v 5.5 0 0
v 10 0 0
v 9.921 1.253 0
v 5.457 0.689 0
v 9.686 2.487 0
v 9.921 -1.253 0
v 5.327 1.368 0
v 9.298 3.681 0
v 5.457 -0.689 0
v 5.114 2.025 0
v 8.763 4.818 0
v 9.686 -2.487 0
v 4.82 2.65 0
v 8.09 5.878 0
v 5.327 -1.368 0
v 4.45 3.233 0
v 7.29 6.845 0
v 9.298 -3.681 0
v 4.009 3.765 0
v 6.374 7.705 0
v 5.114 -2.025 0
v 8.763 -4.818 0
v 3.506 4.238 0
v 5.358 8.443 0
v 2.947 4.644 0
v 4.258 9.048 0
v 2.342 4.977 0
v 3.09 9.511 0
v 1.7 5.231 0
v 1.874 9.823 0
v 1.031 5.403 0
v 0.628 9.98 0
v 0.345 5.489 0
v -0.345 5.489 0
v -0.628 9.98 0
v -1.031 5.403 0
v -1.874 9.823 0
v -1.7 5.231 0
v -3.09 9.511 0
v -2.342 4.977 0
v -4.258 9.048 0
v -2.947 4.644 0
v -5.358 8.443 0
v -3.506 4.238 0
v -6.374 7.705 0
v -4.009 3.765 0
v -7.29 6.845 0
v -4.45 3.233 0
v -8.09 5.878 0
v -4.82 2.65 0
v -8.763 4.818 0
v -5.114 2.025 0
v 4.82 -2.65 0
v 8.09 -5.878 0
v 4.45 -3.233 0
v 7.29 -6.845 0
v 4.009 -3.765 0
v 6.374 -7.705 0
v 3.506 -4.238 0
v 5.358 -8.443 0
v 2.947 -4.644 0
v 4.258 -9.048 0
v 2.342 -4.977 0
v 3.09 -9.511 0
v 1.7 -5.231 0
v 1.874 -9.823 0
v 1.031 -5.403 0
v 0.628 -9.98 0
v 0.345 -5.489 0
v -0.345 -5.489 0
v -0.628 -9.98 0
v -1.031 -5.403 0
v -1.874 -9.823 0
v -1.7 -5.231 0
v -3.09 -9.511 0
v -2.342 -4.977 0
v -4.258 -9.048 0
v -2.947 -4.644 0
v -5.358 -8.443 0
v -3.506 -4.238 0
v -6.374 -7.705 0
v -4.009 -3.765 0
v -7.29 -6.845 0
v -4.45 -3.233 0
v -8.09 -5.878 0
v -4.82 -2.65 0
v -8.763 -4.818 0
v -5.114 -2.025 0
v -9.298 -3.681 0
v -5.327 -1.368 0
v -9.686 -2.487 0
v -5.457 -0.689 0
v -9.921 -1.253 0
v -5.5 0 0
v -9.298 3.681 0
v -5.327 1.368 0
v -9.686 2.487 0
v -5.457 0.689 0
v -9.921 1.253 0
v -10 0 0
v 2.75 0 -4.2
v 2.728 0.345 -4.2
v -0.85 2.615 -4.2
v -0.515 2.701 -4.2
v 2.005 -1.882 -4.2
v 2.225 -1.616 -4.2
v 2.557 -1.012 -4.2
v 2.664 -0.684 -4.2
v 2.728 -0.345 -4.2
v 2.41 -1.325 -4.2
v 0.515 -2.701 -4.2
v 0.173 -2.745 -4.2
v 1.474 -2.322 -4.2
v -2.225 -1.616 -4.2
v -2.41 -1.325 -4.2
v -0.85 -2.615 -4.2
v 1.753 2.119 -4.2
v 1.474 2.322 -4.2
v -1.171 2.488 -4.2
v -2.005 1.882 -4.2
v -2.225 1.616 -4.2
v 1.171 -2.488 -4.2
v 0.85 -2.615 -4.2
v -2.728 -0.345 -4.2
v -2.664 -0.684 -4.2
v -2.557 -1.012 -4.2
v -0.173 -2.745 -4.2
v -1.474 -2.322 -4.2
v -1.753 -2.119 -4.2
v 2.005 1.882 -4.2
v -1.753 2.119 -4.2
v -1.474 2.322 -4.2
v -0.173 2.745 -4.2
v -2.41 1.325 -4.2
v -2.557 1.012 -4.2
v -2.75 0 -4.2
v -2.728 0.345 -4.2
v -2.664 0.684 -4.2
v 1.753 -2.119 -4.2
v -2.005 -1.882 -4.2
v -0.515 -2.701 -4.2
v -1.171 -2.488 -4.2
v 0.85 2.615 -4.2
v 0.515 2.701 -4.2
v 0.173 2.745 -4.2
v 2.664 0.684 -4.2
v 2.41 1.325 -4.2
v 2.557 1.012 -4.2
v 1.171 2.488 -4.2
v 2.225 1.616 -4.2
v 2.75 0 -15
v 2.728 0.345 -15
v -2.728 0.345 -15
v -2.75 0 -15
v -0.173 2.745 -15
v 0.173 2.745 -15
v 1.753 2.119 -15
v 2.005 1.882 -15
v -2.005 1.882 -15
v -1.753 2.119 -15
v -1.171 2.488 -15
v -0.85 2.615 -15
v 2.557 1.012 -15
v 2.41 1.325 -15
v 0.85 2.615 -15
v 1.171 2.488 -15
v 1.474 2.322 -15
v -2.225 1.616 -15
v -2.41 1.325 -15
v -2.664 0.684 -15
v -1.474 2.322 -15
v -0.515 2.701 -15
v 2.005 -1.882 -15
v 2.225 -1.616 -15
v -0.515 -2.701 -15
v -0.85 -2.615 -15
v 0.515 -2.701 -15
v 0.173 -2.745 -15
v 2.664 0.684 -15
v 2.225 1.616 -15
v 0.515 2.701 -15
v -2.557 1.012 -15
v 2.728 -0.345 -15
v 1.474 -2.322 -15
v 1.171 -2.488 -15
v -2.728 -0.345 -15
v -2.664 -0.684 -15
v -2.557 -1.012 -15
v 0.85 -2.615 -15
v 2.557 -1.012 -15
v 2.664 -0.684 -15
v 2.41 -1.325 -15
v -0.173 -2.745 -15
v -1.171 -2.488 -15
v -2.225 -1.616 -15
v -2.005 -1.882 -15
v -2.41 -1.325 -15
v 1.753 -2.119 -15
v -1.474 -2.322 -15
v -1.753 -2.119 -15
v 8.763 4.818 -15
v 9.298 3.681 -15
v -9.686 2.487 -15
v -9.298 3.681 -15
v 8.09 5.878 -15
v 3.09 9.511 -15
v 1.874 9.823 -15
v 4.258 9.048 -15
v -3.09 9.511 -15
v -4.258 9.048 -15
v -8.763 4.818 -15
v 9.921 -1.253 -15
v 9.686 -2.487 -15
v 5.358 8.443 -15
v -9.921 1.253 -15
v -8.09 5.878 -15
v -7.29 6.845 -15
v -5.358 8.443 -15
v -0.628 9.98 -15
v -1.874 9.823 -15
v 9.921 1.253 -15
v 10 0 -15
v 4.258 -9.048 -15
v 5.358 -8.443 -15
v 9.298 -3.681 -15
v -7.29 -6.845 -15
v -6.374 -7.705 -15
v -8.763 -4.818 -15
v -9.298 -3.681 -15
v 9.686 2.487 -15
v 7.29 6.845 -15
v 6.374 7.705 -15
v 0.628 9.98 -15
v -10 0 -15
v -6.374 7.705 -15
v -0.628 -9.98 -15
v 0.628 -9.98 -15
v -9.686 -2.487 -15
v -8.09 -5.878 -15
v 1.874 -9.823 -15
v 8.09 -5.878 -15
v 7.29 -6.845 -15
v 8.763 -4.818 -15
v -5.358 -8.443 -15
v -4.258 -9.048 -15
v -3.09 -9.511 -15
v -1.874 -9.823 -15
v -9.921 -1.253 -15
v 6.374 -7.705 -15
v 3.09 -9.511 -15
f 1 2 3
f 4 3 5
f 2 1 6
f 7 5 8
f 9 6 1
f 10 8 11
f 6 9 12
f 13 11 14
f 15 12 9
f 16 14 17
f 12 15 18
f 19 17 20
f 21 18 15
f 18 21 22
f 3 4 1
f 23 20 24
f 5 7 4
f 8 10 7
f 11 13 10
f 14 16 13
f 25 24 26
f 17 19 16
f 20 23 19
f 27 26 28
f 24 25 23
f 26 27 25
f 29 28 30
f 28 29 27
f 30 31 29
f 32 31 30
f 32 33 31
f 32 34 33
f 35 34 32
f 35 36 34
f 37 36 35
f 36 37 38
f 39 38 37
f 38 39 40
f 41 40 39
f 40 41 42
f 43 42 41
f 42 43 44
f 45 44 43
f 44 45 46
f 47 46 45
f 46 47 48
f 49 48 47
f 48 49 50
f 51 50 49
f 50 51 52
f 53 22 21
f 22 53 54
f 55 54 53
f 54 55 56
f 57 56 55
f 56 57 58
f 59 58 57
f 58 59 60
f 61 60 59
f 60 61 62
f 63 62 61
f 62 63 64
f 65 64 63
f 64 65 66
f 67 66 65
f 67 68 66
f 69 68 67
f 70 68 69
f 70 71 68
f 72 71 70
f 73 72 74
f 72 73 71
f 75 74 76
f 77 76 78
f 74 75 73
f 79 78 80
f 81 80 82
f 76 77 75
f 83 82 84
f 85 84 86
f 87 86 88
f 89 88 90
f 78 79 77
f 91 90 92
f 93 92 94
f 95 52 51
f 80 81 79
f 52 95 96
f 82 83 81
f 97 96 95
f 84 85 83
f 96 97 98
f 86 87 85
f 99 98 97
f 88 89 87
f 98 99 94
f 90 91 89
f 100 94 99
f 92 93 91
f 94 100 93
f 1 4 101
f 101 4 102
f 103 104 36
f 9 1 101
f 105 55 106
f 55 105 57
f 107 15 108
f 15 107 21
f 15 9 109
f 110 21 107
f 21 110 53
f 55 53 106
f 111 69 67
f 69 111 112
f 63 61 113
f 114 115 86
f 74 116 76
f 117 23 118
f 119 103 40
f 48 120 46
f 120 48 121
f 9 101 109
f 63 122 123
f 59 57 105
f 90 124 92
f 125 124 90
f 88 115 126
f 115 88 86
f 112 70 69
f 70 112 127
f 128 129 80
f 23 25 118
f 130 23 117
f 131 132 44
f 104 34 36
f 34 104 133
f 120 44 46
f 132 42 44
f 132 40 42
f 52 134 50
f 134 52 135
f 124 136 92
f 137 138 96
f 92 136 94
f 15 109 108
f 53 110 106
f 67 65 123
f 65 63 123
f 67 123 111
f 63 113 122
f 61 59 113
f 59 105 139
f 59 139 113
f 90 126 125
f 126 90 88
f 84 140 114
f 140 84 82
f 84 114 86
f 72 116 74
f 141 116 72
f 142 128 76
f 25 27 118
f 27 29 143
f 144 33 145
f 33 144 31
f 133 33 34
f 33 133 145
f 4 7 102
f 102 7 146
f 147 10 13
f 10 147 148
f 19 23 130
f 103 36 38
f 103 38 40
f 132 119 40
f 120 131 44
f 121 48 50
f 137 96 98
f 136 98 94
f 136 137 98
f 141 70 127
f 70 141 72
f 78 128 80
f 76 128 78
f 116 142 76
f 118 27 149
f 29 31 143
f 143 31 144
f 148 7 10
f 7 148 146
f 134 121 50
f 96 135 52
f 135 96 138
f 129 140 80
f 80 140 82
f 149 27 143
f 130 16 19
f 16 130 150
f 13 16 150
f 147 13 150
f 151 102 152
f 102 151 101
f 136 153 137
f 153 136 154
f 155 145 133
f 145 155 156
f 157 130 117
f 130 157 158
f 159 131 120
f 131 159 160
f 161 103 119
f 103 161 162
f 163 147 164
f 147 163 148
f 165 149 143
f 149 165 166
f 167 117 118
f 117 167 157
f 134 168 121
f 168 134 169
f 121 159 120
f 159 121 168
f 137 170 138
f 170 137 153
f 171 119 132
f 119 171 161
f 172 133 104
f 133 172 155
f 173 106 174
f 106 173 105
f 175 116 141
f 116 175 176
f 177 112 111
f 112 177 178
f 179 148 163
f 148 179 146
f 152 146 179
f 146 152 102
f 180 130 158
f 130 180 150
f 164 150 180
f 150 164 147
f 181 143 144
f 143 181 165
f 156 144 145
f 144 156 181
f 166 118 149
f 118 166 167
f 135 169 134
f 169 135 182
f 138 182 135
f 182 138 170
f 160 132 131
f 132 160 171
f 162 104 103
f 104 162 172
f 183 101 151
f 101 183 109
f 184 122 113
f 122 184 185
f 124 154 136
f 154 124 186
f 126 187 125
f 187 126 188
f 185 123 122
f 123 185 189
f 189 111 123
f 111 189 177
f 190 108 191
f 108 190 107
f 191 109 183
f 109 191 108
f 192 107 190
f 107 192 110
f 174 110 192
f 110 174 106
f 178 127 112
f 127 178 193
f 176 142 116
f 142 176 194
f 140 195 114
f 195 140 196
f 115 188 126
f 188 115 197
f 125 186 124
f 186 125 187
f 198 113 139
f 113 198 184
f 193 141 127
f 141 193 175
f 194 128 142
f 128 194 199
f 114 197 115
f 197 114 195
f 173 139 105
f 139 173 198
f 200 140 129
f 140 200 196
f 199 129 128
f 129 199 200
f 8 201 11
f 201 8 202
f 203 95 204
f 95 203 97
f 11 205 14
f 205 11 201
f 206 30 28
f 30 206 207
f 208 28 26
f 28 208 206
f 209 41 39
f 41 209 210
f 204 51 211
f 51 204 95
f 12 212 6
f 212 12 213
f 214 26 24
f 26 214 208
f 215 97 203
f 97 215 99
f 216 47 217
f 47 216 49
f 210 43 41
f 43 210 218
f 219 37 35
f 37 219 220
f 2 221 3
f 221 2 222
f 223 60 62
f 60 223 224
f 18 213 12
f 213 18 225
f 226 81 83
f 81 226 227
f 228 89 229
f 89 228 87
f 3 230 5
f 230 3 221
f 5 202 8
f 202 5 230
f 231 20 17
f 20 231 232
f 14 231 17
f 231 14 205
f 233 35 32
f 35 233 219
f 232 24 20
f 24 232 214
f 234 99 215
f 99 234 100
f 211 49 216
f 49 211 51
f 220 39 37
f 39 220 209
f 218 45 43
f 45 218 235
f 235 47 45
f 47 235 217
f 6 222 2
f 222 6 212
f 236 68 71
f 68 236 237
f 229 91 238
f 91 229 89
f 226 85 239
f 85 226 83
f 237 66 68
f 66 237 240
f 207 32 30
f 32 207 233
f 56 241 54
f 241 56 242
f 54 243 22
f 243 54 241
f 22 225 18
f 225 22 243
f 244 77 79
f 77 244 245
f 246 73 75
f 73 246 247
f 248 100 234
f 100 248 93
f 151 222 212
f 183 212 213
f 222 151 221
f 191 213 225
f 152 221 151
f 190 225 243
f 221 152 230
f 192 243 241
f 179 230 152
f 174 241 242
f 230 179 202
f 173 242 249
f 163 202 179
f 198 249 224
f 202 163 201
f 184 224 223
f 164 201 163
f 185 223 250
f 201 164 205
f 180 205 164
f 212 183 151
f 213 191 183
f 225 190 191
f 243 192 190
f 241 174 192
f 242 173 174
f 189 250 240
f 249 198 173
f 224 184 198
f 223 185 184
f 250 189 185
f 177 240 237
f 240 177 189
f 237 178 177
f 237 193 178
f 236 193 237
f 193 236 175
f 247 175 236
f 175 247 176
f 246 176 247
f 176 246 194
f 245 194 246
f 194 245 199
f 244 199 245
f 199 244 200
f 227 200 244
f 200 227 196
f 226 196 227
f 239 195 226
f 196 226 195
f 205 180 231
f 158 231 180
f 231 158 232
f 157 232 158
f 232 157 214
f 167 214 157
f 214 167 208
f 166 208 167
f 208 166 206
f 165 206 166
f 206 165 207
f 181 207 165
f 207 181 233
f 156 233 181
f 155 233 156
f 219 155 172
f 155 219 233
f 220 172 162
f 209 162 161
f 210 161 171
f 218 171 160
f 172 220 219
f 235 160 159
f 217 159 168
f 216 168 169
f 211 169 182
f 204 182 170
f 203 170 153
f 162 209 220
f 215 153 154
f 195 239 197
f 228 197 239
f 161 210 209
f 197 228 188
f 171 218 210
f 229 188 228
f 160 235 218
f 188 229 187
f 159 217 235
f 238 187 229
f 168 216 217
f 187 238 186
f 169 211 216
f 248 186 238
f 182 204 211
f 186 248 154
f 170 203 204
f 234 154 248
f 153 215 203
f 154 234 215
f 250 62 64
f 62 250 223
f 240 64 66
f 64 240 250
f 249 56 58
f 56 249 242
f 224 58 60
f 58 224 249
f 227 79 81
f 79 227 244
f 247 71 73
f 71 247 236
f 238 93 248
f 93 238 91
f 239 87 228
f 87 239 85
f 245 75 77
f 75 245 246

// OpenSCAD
$fn = 50;


difference() {
	union() {
		translate(v = [0, 0, -15.0000000000]) {
			cylinder(h = 15, r = 10.0000000000);
		}
	}
	union() {
		translate(v = [0, 0, 0]) {
			rotate(a = [0, 0, 0]) {
				difference() {
					union() {
						translate(v = [0, 0, -18.0000000000]) {
							cylinder(h = 18, r = 2.2500000000);
						}
						translate(v = [0, 0, -4.2000000000]) {
							cylinder(h = 4.2000000000, r1 = 2.7500000000, r2 = 5.5000000000);
						}
						translate(v = [0, 0, -18.0000000000]) {
							cylinder(h = 18, r = 2.7500000000);
						}
						translate(v = [0, 0, -18.0000000000]) {
							cylinder(h = 18, r = 2.2500000000);
						}
					}
					union();
				}
			}
		}
	}
}
